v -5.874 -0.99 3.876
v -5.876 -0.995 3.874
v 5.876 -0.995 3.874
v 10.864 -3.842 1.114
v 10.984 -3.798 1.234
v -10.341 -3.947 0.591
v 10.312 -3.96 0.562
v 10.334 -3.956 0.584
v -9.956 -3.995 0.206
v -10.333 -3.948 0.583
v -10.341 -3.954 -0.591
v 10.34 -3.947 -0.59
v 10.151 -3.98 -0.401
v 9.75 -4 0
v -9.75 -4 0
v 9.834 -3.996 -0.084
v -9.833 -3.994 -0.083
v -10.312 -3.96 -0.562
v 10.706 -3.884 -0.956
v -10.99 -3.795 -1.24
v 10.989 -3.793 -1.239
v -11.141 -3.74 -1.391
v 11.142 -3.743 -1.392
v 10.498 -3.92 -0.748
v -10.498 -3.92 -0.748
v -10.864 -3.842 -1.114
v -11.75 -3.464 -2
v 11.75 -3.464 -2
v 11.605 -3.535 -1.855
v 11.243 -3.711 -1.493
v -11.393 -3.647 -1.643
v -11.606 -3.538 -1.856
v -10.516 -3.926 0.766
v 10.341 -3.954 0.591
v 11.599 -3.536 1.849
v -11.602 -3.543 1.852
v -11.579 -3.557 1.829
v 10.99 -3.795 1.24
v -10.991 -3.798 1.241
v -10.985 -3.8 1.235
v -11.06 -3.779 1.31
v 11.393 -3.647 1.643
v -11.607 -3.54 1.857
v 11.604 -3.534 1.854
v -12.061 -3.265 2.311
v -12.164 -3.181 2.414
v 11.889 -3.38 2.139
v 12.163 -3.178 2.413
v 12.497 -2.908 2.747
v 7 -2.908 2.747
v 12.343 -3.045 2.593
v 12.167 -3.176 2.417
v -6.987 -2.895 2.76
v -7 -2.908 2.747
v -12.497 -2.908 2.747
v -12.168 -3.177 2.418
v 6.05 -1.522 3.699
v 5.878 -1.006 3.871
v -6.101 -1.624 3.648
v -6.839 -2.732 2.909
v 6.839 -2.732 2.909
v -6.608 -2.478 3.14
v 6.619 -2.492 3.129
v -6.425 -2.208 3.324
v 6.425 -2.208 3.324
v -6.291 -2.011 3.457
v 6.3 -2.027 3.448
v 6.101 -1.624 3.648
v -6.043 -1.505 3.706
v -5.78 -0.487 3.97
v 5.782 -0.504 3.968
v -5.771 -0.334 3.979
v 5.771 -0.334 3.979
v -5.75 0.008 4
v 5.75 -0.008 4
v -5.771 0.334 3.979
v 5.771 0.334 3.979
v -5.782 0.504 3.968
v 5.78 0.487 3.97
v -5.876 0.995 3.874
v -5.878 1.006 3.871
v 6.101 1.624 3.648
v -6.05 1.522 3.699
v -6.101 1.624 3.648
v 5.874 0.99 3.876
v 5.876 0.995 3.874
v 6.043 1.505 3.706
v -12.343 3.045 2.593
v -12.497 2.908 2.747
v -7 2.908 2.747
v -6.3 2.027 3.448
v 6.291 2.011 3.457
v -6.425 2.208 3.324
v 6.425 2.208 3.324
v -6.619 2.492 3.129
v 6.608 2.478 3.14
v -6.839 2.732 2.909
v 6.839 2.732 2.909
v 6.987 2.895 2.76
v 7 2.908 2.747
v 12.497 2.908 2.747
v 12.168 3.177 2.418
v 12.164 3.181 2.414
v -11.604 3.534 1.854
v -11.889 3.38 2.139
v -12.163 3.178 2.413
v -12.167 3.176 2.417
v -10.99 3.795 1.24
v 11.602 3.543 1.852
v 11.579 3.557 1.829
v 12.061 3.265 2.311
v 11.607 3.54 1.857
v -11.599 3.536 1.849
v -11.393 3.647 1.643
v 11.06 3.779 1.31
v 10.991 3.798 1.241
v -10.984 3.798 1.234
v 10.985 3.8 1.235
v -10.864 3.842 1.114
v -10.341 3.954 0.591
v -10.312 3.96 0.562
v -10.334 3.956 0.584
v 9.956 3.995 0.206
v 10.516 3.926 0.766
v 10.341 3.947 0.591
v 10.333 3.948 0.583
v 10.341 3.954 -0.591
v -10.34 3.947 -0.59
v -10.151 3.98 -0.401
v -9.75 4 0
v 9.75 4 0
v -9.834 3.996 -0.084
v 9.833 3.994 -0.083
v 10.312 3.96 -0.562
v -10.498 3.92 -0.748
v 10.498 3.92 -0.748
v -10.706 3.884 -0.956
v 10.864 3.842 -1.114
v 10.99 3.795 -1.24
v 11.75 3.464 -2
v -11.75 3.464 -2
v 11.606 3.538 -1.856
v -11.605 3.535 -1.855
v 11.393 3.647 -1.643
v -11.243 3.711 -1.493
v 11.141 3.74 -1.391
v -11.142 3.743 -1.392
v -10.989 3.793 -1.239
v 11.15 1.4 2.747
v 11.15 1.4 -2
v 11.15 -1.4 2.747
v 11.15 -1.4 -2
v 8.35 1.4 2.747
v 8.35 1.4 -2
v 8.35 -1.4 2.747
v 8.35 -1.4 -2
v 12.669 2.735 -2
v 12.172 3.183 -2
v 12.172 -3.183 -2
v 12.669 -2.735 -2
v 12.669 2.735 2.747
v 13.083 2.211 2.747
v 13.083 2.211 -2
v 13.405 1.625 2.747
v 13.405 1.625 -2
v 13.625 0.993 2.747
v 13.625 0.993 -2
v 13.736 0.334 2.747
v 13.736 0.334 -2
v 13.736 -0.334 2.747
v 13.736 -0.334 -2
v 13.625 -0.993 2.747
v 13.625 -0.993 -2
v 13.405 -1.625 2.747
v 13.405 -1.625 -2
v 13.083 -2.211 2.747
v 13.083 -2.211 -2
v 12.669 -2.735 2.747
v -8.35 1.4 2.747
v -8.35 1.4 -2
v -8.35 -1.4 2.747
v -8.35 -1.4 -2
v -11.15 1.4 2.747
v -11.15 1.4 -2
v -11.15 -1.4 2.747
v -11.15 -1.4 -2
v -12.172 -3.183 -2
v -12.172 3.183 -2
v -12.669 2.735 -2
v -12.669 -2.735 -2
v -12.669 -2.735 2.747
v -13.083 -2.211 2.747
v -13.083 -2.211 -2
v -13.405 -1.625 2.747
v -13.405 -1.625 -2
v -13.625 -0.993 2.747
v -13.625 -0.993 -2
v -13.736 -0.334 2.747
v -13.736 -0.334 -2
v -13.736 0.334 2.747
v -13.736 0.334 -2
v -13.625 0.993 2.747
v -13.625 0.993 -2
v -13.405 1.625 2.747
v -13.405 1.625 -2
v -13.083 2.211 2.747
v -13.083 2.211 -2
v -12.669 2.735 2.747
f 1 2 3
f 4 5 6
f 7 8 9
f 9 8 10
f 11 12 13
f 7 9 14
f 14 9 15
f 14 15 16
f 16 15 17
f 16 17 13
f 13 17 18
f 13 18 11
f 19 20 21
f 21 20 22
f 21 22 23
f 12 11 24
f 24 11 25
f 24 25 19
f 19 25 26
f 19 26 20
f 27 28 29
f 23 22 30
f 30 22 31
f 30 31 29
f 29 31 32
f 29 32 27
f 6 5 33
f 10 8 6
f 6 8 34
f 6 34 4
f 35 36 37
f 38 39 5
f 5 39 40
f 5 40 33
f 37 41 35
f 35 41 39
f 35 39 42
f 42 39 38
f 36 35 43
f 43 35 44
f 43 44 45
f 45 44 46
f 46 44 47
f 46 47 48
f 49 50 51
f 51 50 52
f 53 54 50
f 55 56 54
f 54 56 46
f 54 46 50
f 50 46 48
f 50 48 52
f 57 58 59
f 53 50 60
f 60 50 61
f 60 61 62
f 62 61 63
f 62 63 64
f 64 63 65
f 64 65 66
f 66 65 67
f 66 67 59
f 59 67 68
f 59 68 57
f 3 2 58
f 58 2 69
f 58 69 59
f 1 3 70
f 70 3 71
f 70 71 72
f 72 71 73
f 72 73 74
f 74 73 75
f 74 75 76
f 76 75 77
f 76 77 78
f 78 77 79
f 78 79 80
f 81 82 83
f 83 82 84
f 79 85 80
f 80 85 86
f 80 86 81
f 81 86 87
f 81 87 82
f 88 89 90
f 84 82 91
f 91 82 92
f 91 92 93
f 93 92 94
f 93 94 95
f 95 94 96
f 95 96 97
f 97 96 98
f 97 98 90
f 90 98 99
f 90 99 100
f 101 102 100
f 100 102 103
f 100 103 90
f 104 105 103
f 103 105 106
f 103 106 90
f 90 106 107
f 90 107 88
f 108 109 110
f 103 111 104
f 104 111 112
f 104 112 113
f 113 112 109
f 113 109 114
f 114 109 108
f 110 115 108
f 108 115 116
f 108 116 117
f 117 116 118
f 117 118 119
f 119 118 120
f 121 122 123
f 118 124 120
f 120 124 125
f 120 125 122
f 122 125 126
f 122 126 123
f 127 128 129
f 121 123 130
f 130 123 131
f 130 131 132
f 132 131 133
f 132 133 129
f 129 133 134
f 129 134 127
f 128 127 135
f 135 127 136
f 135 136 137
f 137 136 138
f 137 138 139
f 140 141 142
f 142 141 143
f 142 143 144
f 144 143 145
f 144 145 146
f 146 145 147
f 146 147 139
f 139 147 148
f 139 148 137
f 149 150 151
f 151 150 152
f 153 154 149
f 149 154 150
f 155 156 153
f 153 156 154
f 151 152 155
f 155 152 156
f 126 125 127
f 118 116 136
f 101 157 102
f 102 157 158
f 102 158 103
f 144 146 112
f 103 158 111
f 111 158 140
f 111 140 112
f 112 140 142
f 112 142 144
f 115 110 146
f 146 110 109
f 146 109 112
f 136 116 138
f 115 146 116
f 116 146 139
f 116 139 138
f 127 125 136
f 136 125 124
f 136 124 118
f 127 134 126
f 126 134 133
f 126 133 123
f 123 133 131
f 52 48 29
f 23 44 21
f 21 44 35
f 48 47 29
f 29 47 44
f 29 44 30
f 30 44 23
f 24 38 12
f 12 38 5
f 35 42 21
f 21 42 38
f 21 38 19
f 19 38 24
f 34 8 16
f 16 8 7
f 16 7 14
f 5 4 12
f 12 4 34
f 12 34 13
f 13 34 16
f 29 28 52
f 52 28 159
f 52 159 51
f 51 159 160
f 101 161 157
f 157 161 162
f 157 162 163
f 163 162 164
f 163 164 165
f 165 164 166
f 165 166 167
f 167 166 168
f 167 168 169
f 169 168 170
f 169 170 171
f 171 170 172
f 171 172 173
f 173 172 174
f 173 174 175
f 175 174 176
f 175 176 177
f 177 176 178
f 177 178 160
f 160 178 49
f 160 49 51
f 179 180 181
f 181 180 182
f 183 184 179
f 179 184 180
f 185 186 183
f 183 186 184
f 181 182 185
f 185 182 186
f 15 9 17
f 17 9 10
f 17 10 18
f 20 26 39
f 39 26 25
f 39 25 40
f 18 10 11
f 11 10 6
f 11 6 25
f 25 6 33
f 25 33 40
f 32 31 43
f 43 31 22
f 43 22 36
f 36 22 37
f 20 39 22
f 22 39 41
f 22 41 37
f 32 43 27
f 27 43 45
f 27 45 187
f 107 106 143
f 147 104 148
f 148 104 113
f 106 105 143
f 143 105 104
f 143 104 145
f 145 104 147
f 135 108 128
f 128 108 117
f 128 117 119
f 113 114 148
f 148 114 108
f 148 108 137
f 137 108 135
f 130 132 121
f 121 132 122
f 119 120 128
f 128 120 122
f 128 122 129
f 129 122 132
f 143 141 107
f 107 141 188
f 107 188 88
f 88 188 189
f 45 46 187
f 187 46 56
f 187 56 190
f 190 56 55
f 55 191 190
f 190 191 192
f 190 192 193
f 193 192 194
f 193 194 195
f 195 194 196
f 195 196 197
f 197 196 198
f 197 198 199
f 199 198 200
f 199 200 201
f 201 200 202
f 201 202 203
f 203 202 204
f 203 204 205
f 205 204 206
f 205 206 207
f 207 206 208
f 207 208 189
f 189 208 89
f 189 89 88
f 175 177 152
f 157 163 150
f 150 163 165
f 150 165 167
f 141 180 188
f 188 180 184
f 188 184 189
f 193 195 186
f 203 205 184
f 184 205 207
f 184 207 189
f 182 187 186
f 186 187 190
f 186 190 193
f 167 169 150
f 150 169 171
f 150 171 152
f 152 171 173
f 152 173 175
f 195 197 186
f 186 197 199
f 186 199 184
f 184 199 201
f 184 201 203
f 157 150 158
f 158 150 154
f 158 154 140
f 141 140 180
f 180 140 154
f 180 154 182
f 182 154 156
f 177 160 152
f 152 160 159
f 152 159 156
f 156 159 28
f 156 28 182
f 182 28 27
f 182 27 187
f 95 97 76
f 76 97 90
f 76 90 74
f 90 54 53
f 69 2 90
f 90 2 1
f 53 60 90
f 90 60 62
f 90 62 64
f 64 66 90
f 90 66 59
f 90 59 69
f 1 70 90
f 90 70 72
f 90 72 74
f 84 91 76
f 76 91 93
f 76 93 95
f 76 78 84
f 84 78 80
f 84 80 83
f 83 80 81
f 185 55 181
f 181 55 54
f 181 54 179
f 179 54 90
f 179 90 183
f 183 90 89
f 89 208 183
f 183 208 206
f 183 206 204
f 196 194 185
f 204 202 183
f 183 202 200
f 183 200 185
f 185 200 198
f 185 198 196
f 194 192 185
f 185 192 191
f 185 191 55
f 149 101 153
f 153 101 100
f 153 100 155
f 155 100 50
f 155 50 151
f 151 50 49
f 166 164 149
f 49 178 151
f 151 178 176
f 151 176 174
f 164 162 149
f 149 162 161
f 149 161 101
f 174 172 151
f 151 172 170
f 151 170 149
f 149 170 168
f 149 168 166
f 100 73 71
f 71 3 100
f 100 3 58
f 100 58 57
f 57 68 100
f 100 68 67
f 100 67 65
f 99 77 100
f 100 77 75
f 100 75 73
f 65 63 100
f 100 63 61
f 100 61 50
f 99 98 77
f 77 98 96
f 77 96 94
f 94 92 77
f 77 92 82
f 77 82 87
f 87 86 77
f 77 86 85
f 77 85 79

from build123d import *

# Parameters (mm, degrees)
RESSALTO_EXTRUS_O1_DEPTH      = 13.75
RESSALTO_EXTRUS_O1_DEPTH_BACK = 13.75
CORTE_EXTRUS_O1_DEPTH         = 13.75
CORTE_EXTRUS_O1_DEPTH_BACK    = 13.75
ESBO_O1_W                     = 2.8
ESBO_O1_H                     = 2.8
CORTE_EXTRUS_O2_DEPTH         = 13.75
CORTE_EXTRUS_O2_DEPTH_BACK    = 13.75


with BuildPart() as part:
    # Esboço2 → Ressalto-extrusão1 (new, two sides: drawn at the far end of the back side and taken through both)
    with BuildSketch(Plane(origin=(0, 0, 0), x_dir=(0, 0, -1), z_dir=(1, 0, 0)).offset(-RESSALTO_EXTRUS_O1_DEPTH_BACK)):
        with BuildLine():
            Line((2, 3.464101615), (2, -3.464101615))
            ThreePointArc((2, -3.464101615), (-4, 0), (2, 3.464101615))
        make_face()
    extrude(amount=RESSALTO_EXTRUS_O1_DEPTH + RESSALTO_EXTRUS_O1_DEPTH_BACK)

    # Esboço1 → Corte-extrusão1 (cut, two sides: drawn at the far end of the back side and taken through both)
    with BuildSketch(Plane.XY.offset(-CORTE_EXTRUS_O1_DEPTH_BACK)):
        with Locations((9.75, 0)):
            Rectangle(ESBO_O1_W, ESBO_O1_H)
        with BuildLine():
            Line((9.75, 4), (9.75, 5))
            Line((9.75, 5), (14.75, 5))
            Line((14.75, 5), (14.75, -5))
            Line((14.75, -5), (9.75, -5))
            Line((9.75, -5), (9.75, -4))
            ThreePointArc((9.75, -4), (13.75, 0), (9.75, 4))
        make_face()
        with BuildLine():
            Line((-9.75, -4), (-9.75, -5))
            Line((-9.75, -5), (-14.75, -5))
            Line((-14.75, -5), (-14.75, 5))
            Line((-14.75, 5), (-9.75, 5))
            Line((-9.75, 5), (-9.75, 4))
            ThreePointArc((-9.75, 4), (-13.75, 0), (-9.75, -4))
        make_face()
        with Locations((-9.75, 0)):
            Rectangle(ESBO_O1_W, ESBO_O1_H)
    extrude(amount=CORTE_EXTRUS_O1_DEPTH + CORTE_EXTRUS_O1_DEPTH_BACK, mode=Mode.SUBTRACT)

    # Esboço3 → Corte-extrusão2 (cut, two sides: drawn at the far end of the back side and taken through both)
    with BuildSketch(Plane(origin=(0, 0, 0), x_dir=(1, 0, 0), z_dir=(0, 1, 0)).offset(-CORTE_EXTRUS_O2_DEPTH_BACK)):
        Polygon((-7, -2.746998799), (-5.75, -4), (-5.75, -4.746998799), (-13.75, -4.746998799), (-13.75, -2.746998799), align=None)
        Polygon((13.75, -4.746998799), (13.75, -2.746998799), (7, -2.746998799), (5.75, -4), (5.75, -4.746998799), align=None)
    extrude(amount=CORTE_EXTRUS_O2_DEPTH + CORTE_EXTRUS_O2_DEPTH_BACK, mode=Mode.SUBTRACT)


solid = part.part
